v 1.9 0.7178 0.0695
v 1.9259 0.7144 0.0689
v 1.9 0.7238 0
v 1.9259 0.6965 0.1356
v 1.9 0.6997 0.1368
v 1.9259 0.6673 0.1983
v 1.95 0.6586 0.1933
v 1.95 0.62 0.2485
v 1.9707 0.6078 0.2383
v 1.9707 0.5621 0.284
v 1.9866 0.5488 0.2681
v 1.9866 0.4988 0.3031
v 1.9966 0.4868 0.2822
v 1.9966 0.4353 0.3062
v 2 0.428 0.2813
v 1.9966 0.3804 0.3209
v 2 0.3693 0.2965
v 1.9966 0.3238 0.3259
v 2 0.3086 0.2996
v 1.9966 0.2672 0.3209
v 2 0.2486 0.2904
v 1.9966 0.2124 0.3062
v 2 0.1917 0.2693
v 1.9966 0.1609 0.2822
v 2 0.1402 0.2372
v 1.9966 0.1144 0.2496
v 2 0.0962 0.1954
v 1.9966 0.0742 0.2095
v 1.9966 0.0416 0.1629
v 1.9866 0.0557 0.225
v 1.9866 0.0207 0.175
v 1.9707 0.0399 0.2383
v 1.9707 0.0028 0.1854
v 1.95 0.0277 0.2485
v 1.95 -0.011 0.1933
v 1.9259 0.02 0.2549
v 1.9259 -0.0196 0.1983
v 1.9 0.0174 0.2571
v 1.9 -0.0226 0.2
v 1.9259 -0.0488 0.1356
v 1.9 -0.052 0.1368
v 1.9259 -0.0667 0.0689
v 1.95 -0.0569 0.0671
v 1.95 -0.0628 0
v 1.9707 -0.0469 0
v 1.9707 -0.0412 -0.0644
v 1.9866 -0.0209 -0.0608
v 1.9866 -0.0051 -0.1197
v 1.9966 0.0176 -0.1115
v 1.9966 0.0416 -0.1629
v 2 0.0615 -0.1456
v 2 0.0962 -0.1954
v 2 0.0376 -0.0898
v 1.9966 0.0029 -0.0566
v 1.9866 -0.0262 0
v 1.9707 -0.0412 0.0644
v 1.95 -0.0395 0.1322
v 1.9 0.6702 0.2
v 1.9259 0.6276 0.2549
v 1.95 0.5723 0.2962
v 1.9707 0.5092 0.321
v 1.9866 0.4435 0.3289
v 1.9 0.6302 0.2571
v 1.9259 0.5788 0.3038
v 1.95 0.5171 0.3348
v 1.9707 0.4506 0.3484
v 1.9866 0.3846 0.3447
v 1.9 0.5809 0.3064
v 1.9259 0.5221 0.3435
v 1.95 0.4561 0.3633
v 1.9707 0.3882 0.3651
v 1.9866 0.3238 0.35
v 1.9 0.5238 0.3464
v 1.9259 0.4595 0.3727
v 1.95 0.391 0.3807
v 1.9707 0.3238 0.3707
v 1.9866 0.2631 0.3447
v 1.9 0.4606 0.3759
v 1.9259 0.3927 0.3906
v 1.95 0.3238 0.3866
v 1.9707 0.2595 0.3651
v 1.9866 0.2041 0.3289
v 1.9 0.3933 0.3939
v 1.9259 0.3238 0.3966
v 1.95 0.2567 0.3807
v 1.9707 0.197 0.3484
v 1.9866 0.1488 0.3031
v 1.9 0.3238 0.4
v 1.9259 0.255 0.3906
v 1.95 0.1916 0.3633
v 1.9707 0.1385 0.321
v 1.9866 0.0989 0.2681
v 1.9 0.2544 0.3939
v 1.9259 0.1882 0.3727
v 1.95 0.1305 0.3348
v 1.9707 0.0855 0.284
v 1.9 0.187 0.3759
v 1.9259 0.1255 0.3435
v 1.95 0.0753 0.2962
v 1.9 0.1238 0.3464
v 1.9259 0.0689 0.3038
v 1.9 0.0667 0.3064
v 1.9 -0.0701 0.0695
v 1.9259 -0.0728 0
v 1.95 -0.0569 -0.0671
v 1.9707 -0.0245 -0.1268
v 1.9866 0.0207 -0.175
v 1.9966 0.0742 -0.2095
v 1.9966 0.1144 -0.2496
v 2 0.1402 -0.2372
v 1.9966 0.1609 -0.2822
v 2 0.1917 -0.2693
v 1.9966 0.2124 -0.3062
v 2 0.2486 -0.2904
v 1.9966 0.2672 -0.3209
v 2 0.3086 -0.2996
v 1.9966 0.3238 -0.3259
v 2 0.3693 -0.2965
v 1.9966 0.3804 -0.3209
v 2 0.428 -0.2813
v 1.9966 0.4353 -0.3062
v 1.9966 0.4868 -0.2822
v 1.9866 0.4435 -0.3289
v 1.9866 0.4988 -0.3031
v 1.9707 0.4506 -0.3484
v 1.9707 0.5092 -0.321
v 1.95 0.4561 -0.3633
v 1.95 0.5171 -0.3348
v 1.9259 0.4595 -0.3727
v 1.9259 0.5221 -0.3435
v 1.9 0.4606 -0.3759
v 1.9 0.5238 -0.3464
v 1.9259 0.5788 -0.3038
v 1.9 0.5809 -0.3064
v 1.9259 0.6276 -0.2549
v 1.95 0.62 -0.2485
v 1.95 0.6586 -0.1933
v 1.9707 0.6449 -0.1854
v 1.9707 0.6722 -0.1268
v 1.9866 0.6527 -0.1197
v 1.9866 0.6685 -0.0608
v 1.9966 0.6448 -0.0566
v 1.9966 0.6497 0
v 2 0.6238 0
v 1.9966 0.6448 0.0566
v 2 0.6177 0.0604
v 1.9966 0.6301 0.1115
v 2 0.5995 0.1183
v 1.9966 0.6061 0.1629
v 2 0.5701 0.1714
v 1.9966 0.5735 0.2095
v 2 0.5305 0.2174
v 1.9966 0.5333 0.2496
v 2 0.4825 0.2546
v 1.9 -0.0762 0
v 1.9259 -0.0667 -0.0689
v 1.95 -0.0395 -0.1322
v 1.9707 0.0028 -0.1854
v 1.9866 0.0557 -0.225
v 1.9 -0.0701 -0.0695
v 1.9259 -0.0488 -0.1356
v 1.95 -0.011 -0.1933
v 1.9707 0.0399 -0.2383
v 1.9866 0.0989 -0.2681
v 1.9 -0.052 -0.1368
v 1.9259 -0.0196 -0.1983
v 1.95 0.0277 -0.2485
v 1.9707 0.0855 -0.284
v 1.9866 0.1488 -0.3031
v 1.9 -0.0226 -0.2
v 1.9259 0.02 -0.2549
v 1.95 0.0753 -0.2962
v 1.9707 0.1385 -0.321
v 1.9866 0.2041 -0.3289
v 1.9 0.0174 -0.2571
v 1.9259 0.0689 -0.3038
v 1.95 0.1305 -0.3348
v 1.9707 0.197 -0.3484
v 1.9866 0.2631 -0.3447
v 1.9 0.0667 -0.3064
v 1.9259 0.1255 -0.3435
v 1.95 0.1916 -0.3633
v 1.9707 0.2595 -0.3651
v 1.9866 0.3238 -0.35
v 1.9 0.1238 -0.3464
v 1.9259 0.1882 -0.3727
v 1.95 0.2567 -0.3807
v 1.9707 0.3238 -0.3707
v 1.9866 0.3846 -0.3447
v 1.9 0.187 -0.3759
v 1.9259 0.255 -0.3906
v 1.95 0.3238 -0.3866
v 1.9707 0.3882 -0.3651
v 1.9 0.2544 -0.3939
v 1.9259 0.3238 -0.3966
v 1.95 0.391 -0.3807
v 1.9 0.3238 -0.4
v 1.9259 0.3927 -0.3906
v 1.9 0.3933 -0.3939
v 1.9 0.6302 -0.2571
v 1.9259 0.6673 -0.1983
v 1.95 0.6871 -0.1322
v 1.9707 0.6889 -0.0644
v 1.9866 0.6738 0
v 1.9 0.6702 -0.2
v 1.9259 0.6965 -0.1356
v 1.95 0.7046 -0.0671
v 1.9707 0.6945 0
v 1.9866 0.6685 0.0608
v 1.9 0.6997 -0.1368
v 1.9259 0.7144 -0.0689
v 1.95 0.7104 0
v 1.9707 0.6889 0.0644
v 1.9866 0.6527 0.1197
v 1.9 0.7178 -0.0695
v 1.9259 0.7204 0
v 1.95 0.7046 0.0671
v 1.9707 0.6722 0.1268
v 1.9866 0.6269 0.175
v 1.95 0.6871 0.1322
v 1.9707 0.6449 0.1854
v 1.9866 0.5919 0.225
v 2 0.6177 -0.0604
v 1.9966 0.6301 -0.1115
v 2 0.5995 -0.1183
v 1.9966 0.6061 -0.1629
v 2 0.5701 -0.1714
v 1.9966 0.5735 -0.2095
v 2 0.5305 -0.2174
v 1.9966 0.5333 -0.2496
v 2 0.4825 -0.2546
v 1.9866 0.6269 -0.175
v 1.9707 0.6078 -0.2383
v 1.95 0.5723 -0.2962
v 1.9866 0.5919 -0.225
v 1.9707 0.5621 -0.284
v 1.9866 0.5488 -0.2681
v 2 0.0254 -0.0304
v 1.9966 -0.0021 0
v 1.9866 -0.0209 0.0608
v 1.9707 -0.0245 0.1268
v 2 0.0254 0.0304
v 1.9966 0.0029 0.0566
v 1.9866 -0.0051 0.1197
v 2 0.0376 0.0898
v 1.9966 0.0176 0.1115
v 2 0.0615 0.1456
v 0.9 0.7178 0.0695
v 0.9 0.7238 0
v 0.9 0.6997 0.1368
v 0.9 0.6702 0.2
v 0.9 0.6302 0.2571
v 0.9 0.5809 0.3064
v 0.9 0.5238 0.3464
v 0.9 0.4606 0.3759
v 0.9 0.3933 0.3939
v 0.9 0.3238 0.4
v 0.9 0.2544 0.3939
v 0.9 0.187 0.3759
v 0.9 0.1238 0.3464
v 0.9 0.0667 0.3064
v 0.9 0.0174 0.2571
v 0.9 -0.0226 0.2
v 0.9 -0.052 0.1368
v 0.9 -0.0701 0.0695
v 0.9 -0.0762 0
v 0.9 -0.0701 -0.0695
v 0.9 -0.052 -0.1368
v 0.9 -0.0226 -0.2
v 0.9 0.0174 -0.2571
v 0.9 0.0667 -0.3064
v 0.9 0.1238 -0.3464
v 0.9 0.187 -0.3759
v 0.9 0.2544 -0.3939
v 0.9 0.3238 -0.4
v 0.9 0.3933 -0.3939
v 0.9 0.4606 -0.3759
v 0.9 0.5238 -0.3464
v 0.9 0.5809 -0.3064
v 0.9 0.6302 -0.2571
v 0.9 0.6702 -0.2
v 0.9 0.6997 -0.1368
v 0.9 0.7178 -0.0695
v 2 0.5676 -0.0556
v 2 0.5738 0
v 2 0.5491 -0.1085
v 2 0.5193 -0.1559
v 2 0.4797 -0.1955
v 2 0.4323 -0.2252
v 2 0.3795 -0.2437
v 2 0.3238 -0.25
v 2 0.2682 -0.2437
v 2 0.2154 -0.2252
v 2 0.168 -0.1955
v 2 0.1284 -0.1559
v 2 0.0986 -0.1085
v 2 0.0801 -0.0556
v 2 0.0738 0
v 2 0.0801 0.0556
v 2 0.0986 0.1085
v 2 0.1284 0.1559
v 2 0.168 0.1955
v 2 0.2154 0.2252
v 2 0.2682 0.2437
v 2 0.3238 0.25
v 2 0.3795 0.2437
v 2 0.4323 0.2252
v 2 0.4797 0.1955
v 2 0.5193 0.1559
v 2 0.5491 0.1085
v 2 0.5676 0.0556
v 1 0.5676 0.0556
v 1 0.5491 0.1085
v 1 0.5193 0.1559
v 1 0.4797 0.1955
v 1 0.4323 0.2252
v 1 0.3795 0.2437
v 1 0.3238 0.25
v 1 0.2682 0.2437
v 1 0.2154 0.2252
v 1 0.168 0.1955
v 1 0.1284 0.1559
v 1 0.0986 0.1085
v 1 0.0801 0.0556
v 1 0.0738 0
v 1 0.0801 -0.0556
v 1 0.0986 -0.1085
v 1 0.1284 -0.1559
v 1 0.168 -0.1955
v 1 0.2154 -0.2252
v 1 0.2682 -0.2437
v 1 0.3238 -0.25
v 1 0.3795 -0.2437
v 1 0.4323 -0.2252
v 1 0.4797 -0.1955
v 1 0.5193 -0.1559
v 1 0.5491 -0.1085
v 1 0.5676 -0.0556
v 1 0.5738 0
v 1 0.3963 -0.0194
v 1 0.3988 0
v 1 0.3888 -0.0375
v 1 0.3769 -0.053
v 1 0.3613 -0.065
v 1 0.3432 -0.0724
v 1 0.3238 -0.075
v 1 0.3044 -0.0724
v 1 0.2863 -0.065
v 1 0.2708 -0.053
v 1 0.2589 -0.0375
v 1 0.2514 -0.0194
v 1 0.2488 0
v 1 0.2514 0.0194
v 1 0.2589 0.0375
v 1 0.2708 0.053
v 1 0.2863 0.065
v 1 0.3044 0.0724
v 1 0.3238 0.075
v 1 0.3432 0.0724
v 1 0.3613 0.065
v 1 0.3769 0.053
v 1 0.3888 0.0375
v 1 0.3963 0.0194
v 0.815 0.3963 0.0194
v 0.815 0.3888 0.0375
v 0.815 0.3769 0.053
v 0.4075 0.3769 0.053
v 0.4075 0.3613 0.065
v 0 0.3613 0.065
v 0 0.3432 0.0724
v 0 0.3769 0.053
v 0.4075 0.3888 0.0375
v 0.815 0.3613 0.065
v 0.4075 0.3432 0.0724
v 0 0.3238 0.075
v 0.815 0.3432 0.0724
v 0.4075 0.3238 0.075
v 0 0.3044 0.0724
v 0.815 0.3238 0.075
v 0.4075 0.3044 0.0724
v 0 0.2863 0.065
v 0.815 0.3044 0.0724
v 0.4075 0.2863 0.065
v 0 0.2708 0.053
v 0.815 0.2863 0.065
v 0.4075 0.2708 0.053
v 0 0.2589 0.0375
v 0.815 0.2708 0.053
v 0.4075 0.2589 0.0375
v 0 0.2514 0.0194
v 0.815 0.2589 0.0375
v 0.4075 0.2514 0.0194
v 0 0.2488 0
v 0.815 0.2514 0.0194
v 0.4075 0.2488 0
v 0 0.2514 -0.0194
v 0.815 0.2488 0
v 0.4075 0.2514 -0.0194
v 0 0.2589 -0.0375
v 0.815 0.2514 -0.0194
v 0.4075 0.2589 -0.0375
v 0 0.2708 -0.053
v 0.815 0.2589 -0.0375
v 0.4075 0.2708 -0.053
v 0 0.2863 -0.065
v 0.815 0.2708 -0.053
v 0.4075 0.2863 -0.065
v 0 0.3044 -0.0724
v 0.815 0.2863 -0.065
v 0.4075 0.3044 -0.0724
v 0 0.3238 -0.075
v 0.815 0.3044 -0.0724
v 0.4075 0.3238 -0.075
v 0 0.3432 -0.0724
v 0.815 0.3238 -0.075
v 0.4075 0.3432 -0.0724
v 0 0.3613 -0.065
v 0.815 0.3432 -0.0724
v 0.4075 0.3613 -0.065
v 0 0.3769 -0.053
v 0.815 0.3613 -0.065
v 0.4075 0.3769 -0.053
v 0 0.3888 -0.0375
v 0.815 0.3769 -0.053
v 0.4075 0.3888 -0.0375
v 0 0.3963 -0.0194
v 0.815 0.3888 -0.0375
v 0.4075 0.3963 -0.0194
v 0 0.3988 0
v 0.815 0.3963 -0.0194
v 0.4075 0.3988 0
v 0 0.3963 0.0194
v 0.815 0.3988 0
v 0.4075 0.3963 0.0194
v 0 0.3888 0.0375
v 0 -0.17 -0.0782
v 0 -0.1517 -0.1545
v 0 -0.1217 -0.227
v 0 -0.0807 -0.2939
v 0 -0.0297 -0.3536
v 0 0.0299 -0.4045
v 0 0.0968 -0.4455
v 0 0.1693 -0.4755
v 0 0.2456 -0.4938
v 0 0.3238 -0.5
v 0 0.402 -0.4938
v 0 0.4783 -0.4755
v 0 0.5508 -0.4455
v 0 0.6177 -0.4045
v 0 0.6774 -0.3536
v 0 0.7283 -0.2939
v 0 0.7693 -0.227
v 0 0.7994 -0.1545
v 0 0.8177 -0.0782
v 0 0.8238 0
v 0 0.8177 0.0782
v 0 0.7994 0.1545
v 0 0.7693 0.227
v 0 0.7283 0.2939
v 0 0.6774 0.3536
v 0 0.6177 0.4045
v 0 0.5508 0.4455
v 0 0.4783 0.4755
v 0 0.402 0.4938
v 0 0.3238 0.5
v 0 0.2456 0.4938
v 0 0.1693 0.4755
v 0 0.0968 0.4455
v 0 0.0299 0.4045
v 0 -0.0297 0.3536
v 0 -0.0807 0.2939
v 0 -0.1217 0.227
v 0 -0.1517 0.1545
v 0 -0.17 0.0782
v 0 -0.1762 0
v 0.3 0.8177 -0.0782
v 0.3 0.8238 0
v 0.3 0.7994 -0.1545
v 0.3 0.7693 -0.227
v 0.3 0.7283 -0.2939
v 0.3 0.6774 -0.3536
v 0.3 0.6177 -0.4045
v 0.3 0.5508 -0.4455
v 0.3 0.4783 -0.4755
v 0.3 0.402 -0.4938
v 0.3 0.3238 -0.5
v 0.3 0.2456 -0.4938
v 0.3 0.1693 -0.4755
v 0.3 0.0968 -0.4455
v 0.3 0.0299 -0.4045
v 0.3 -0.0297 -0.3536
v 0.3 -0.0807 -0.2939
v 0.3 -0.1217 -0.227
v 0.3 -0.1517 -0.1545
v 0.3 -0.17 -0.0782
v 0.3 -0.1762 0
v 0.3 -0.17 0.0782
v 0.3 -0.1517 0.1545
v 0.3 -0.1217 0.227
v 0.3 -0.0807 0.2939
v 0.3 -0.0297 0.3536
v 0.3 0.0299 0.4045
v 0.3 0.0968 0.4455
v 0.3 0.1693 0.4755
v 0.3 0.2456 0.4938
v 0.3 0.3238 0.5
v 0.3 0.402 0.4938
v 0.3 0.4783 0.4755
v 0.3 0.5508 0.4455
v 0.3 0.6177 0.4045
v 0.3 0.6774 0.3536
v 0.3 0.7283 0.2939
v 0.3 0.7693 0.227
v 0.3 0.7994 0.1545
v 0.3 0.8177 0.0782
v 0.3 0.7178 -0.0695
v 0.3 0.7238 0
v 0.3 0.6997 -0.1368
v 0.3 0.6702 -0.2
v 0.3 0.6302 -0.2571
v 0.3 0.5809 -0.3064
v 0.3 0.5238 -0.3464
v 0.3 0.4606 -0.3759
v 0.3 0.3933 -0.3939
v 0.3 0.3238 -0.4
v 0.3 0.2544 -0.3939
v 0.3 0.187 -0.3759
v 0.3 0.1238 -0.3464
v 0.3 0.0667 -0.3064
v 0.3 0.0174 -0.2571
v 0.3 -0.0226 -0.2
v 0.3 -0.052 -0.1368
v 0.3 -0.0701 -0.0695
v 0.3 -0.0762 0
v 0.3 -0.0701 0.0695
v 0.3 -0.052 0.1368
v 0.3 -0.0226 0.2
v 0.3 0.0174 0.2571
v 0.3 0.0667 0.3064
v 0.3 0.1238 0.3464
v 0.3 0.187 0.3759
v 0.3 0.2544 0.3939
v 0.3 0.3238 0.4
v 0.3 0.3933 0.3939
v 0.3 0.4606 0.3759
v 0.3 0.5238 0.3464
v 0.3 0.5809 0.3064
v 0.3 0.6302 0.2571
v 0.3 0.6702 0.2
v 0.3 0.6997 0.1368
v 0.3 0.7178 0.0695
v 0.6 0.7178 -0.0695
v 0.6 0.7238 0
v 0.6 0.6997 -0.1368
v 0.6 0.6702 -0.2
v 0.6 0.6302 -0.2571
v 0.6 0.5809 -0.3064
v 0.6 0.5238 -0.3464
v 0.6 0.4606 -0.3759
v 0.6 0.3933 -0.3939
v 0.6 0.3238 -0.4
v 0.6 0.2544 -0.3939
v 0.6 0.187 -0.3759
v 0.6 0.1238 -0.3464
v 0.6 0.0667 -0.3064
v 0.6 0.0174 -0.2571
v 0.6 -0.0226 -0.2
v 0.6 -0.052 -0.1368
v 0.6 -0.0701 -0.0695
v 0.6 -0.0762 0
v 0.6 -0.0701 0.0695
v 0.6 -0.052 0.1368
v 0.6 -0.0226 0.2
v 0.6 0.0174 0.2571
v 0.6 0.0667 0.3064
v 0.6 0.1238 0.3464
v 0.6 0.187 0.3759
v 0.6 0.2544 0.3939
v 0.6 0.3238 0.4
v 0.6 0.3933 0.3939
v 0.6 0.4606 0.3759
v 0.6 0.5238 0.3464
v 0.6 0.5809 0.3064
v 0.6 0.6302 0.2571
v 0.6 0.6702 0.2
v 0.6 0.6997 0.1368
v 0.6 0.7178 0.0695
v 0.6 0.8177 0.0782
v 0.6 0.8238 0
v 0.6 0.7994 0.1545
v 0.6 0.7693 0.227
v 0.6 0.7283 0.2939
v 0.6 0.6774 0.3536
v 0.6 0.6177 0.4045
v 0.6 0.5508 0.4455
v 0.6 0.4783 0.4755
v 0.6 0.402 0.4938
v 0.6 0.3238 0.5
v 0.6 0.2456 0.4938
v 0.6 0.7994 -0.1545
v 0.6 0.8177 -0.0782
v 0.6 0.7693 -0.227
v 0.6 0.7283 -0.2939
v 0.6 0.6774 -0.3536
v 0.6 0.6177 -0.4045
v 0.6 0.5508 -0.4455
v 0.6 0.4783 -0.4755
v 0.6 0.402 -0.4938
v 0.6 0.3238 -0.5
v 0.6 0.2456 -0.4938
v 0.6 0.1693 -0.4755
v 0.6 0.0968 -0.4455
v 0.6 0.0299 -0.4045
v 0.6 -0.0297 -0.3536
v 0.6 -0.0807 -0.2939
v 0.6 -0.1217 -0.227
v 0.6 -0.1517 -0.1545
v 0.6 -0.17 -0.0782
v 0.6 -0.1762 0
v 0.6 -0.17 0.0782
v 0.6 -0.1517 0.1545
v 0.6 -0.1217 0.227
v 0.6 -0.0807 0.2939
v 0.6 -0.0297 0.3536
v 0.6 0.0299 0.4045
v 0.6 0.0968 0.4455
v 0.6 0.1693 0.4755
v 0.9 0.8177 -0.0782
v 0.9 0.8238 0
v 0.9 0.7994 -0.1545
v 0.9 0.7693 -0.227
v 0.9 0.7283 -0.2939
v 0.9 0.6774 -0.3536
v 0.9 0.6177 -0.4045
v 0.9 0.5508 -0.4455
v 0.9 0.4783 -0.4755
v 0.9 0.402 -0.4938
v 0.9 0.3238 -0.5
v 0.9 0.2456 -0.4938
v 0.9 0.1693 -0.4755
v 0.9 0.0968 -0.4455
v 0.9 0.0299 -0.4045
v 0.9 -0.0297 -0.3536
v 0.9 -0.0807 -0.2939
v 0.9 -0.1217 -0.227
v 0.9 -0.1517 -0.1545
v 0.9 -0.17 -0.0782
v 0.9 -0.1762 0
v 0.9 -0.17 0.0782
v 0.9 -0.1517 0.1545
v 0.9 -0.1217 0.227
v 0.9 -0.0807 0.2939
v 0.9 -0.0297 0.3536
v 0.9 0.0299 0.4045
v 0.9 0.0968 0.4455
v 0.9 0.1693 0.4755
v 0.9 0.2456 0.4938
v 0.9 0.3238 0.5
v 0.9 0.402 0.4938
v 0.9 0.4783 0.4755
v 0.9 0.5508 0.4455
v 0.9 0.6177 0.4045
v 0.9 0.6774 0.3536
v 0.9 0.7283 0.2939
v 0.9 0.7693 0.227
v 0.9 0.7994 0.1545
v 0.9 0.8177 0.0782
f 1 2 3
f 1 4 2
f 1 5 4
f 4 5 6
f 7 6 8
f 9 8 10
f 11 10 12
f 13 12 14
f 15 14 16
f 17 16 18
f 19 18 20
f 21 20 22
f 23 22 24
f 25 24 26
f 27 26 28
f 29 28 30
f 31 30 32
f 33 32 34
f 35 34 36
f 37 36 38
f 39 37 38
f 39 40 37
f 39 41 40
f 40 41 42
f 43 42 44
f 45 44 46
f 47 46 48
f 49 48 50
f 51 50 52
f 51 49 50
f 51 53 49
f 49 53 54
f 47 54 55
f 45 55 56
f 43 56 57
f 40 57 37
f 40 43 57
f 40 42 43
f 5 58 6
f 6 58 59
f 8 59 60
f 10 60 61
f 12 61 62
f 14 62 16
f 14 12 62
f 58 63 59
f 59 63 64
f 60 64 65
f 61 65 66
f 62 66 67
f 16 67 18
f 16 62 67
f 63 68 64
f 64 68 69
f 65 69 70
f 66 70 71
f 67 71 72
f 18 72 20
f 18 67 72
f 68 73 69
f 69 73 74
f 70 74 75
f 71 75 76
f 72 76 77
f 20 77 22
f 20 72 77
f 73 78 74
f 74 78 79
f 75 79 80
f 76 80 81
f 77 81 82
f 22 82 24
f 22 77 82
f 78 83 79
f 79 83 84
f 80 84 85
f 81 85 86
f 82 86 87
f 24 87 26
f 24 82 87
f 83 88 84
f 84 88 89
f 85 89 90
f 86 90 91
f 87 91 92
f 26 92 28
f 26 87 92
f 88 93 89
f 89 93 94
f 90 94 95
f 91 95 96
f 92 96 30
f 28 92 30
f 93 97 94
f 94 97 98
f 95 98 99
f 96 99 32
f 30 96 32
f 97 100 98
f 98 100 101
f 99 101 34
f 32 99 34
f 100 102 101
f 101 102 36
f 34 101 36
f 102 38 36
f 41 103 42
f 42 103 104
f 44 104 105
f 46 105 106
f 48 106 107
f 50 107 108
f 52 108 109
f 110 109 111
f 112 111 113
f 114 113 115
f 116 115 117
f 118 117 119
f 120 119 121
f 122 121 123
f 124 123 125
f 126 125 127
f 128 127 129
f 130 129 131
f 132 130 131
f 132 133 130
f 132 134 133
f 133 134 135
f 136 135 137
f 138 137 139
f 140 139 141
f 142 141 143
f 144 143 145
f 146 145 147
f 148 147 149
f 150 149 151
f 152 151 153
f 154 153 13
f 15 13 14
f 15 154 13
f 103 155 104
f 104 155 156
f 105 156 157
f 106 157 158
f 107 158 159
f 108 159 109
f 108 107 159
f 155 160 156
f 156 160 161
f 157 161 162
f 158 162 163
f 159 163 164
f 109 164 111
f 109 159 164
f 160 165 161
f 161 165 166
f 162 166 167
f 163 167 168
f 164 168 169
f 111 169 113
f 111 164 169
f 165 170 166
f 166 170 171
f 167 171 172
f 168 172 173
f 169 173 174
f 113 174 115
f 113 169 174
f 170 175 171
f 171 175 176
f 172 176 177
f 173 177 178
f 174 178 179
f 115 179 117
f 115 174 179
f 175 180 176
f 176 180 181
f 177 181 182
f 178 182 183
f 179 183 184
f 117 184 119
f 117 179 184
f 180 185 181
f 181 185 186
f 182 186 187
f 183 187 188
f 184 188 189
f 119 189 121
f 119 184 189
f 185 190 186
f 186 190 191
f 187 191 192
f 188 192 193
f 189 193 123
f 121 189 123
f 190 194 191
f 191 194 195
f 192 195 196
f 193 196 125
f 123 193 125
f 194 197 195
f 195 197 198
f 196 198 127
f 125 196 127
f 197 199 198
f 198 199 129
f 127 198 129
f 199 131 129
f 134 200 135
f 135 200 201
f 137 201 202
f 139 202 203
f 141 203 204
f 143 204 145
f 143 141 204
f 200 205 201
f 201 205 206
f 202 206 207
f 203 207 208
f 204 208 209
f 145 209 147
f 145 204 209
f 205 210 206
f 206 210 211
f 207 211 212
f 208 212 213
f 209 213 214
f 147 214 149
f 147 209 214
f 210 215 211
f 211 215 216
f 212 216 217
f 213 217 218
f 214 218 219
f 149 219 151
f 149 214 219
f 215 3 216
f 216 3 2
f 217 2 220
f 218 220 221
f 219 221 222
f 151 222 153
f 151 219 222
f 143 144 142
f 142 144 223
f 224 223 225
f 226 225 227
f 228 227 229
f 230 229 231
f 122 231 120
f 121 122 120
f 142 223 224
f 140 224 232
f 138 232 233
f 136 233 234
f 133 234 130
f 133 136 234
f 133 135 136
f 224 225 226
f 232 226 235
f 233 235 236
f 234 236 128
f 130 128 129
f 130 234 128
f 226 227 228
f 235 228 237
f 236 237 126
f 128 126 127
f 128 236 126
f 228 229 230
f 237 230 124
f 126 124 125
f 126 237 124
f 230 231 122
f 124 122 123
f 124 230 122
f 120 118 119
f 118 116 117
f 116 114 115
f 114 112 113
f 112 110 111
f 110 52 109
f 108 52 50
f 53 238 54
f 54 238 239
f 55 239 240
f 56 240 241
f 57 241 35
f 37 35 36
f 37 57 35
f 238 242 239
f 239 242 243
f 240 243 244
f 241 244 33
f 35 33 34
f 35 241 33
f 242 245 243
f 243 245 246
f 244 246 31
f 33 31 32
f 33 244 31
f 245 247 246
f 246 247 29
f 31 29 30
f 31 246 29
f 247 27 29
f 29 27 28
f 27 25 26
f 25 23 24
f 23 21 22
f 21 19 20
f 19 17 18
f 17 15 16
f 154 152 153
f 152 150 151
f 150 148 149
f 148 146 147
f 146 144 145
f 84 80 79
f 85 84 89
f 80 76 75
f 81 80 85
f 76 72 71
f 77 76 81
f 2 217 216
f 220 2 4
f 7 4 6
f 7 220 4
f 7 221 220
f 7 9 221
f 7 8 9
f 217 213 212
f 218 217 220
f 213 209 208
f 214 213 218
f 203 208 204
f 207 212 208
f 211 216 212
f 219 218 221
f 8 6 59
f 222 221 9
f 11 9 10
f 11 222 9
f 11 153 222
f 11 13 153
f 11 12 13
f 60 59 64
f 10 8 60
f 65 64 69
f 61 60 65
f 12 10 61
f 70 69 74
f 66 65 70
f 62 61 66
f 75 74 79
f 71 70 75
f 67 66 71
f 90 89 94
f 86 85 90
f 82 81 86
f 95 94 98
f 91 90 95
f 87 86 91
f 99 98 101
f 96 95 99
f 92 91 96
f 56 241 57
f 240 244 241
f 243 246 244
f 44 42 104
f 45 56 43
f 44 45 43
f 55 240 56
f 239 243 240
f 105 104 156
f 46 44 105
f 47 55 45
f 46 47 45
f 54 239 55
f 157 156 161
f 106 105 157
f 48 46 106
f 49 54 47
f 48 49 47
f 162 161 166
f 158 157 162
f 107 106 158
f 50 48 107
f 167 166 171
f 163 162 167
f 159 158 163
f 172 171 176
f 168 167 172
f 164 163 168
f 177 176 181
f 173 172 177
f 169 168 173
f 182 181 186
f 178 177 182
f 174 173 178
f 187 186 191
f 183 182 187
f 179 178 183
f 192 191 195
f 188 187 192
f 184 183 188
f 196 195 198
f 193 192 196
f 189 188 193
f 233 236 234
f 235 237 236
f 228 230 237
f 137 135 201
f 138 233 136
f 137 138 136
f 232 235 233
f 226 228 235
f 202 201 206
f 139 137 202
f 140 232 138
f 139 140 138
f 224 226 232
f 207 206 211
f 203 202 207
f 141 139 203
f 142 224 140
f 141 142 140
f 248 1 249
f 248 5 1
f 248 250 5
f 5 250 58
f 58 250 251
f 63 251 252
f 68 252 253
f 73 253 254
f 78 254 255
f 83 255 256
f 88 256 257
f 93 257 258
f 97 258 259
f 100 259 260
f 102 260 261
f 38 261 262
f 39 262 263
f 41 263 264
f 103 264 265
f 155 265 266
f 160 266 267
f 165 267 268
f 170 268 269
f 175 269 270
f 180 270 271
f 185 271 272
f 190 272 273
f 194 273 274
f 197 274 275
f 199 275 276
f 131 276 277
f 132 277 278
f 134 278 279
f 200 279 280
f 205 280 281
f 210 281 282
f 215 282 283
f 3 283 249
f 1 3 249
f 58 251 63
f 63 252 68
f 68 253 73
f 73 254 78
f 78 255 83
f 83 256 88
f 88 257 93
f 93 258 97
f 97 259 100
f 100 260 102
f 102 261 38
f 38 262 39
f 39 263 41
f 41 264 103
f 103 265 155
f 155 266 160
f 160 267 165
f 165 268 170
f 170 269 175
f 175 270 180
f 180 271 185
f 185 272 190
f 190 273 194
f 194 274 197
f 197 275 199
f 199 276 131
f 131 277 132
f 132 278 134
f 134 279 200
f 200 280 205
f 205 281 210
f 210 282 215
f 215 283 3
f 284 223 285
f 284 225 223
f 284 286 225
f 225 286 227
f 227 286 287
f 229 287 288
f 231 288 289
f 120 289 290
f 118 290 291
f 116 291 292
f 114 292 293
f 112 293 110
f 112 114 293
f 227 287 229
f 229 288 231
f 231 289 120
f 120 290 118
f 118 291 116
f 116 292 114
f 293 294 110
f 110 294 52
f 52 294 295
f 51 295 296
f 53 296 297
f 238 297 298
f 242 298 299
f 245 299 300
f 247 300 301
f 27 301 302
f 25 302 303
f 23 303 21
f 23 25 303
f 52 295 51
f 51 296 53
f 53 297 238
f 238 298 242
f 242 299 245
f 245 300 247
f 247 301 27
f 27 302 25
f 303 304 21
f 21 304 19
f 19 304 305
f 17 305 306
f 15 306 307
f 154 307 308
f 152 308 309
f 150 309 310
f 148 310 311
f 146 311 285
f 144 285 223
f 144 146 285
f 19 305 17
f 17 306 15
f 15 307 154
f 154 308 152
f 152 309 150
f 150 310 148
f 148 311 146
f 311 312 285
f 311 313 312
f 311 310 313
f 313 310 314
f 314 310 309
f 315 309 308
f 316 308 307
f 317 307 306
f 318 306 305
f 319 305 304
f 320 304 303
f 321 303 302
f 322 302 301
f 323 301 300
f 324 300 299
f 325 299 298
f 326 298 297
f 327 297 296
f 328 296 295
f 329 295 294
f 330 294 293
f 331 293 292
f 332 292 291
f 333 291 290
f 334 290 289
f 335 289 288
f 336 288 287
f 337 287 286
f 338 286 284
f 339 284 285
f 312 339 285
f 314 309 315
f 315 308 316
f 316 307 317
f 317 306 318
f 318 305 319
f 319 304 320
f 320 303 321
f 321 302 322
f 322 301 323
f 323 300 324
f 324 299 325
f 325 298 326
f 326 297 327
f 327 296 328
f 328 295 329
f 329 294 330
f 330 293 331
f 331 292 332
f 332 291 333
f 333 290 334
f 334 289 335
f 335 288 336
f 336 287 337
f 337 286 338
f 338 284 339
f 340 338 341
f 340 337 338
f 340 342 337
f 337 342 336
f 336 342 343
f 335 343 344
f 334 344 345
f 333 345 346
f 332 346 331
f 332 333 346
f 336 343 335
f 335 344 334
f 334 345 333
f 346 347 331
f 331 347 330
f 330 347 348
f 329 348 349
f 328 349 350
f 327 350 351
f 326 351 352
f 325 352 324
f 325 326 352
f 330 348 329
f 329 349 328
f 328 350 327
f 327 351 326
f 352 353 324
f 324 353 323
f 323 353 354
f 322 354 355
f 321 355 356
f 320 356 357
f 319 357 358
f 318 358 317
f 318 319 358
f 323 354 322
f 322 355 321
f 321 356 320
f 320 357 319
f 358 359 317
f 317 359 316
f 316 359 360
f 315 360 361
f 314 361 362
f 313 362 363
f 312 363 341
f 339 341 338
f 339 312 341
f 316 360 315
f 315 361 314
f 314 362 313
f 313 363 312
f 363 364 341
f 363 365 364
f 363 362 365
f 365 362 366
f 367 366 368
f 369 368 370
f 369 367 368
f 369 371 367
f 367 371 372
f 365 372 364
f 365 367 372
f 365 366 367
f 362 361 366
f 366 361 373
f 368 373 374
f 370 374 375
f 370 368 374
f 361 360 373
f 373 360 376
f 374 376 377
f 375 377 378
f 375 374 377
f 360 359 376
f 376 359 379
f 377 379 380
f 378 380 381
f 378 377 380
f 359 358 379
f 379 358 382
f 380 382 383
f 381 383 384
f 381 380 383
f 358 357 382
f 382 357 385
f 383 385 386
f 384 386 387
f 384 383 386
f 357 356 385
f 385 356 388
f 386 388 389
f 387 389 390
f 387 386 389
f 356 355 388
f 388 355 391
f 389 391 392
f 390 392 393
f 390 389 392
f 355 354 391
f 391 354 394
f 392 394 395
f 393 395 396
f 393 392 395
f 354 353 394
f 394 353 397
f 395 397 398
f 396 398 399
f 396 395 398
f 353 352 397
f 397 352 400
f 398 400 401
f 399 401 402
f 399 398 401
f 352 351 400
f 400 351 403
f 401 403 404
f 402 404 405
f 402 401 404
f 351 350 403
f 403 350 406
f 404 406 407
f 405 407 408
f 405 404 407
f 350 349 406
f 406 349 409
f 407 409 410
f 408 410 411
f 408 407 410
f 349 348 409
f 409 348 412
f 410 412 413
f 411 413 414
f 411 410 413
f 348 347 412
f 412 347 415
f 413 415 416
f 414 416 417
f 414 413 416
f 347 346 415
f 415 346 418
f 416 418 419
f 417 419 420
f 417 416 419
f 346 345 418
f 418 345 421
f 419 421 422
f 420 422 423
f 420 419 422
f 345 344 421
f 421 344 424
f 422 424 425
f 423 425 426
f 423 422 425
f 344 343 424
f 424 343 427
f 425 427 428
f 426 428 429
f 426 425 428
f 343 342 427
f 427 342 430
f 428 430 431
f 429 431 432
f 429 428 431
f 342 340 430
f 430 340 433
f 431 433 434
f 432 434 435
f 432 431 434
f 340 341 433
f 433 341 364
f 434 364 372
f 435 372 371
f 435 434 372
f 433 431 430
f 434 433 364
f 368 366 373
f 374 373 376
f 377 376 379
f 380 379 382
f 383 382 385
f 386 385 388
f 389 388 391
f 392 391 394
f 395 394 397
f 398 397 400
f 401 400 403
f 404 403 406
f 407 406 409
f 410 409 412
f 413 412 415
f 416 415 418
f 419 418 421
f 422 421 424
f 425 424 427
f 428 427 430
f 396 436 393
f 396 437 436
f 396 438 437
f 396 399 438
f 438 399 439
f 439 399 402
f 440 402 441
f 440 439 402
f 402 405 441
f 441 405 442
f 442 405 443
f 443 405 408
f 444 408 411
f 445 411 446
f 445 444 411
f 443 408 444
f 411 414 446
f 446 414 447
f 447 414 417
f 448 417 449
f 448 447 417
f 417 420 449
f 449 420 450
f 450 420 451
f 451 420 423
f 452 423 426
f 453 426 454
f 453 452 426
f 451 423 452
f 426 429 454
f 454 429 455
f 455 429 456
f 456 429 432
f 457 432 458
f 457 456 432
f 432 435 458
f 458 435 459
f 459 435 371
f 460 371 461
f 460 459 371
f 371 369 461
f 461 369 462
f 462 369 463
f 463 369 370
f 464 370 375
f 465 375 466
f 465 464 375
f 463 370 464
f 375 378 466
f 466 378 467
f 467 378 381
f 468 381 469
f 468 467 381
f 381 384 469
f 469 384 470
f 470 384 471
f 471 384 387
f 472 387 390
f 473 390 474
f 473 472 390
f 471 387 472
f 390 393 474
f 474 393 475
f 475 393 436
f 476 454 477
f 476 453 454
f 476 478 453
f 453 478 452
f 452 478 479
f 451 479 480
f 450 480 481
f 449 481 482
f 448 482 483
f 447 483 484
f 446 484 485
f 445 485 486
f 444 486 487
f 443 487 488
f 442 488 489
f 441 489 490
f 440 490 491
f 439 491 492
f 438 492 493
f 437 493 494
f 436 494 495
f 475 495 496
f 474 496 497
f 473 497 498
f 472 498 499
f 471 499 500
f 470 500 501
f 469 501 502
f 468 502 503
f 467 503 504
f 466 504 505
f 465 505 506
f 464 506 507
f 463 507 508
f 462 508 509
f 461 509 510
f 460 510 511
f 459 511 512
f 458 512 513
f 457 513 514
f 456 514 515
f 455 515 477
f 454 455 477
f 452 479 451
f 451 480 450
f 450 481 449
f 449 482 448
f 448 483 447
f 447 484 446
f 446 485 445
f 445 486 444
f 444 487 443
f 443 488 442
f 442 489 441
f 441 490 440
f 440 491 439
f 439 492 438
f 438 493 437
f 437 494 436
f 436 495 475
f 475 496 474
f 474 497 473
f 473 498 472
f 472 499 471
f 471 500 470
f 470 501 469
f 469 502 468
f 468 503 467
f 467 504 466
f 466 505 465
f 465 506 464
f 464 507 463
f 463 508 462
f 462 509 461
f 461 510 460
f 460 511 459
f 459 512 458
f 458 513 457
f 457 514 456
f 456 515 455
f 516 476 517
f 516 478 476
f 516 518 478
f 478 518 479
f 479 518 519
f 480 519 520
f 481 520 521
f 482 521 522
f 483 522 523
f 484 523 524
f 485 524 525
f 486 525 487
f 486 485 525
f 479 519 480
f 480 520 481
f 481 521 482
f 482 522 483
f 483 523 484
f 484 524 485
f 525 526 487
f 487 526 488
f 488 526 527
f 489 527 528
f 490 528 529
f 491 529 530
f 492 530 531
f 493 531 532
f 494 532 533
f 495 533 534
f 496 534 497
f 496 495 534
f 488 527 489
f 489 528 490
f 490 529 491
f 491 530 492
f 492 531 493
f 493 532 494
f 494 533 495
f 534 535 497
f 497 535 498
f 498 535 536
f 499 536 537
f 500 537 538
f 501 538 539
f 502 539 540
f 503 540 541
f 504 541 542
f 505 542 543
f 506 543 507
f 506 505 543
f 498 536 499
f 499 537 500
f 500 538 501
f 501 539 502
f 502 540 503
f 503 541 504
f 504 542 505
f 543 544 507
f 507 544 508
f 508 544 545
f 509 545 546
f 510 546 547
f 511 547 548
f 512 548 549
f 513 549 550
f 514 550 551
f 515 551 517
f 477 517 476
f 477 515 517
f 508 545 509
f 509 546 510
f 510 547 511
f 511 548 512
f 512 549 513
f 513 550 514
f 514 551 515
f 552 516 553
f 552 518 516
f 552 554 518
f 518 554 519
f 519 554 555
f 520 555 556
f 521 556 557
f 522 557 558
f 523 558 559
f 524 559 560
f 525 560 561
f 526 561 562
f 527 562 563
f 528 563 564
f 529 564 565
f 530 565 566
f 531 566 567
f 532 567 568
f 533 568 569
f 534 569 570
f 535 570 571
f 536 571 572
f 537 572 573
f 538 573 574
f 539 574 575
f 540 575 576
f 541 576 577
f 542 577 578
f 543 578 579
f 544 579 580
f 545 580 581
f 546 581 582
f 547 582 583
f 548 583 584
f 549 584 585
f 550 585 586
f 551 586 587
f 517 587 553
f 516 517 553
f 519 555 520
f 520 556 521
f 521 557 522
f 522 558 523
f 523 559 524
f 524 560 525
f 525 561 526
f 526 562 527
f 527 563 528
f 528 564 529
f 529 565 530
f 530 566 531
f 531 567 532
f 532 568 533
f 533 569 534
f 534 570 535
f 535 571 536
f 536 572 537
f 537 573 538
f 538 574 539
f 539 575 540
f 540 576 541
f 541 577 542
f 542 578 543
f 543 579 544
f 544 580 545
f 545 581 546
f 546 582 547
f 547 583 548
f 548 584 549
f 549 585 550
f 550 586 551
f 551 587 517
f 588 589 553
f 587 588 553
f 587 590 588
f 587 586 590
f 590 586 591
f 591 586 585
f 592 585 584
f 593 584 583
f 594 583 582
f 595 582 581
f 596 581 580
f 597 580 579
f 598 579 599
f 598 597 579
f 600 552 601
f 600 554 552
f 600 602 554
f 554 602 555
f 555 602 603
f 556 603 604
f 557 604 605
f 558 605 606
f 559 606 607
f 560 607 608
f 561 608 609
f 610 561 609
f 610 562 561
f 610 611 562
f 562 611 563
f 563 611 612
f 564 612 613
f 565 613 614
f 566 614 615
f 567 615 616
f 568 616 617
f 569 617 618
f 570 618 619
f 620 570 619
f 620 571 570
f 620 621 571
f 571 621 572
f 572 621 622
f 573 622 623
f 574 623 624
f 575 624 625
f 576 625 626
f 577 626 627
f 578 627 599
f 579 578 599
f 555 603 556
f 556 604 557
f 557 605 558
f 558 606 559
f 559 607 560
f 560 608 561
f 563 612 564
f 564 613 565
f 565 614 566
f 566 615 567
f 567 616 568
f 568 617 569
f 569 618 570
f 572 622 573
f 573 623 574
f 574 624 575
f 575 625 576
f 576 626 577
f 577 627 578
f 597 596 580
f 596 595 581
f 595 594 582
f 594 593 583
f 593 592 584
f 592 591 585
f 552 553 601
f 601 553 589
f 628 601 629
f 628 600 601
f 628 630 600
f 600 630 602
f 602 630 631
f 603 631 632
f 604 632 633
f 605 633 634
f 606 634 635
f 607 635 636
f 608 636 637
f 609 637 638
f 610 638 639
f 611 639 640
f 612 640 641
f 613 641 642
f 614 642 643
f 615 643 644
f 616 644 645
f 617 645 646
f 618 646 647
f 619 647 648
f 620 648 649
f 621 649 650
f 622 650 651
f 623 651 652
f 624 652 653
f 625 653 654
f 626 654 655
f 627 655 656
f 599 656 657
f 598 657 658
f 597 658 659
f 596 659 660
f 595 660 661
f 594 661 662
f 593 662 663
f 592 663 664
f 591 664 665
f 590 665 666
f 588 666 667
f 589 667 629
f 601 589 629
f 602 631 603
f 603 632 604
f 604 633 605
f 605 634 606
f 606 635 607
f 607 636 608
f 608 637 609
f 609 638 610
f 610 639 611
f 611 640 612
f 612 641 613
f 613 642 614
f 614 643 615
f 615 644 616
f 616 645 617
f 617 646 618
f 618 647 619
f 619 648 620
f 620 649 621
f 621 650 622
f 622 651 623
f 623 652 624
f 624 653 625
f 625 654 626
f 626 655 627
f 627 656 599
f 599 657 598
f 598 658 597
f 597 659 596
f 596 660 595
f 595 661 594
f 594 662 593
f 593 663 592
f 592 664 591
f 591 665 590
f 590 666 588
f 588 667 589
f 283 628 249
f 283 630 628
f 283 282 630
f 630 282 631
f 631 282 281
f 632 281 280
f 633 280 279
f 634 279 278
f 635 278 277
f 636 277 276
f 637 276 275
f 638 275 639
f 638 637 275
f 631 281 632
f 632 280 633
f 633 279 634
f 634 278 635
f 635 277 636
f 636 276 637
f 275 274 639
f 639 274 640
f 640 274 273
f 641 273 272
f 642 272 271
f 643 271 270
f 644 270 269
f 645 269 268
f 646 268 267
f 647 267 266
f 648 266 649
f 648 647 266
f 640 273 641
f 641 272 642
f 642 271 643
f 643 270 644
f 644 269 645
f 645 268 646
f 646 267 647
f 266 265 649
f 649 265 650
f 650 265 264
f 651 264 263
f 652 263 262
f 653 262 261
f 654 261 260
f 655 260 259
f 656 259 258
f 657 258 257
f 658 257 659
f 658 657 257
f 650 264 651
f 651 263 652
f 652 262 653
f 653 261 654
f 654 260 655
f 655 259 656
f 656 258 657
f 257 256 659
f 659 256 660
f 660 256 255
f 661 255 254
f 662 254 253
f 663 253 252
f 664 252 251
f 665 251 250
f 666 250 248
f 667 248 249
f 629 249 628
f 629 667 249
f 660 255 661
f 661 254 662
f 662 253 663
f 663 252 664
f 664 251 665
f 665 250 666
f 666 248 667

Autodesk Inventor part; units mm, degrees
ref_plane "YZ Plane" through (0, 0, 0) normal (1, 0, 0) x (0, 1, 0)
ref_plane "XZ Plane" through (0, 0, 0) normal (0, 1, 0) x (-1, 0, 0)
ref_plane "XY Plane" through (0, 0, 0) normal (0, 0, 1) x (1, 0, 0)
sketch "Skizze1" plane through (0, 0, 0) normal (0, 0, 1) x (1, 0, 0)
  line L0 (0, 0.3238) -> (2, 0.3238)
  line L1 (2, 0.3238) -> (2, 0.7238)
  line L2 (2, 0.7238) -> (0.9, 0.7238)
  line L3 (0.9, 0.7238) -> (0.9, 0.8238)
  line L4 (0.9, 0.8238) -> (0.6, 0.8238)
  line L5 (0.6, 0.8238) -> (0.6, 0.7238)
  line L6 (0.6, 0.7238) -> (0.3, 0.7238)
  line L7 (0.3, 0.7238) -> (0.3, 0.8238)
  line L8 (0.3, 0.8238) -> (0, 0.8238)
  line L9 (0, 0.8238) -> (0, 0.3238)
  dimension "d1" = 2
  dimension "d6" = 0.3
  dimension "d7" = 0.3
  dimension "d8" = 0.3
  dimension "d10" = 0.5
  dimension "d11" = 0.4
revolve "Drehung1" add sketch "Skizze1" angle 360 about axis through (0, 0.3238, 0) along (1, 0, 0)
hole "Bohrung1" at (0, 0.3238, 0) direction (1, 0, 0) diameter 0.15 depth 8
hole "Bohrung2" at (2, 0.3238, 0) direction (-1, 0, 0) diameter 0.5 depth 1
fillet "Rundung1" radius 0.1 1 edges at (2, -0.0762, 0)
properties part number "Blende"
